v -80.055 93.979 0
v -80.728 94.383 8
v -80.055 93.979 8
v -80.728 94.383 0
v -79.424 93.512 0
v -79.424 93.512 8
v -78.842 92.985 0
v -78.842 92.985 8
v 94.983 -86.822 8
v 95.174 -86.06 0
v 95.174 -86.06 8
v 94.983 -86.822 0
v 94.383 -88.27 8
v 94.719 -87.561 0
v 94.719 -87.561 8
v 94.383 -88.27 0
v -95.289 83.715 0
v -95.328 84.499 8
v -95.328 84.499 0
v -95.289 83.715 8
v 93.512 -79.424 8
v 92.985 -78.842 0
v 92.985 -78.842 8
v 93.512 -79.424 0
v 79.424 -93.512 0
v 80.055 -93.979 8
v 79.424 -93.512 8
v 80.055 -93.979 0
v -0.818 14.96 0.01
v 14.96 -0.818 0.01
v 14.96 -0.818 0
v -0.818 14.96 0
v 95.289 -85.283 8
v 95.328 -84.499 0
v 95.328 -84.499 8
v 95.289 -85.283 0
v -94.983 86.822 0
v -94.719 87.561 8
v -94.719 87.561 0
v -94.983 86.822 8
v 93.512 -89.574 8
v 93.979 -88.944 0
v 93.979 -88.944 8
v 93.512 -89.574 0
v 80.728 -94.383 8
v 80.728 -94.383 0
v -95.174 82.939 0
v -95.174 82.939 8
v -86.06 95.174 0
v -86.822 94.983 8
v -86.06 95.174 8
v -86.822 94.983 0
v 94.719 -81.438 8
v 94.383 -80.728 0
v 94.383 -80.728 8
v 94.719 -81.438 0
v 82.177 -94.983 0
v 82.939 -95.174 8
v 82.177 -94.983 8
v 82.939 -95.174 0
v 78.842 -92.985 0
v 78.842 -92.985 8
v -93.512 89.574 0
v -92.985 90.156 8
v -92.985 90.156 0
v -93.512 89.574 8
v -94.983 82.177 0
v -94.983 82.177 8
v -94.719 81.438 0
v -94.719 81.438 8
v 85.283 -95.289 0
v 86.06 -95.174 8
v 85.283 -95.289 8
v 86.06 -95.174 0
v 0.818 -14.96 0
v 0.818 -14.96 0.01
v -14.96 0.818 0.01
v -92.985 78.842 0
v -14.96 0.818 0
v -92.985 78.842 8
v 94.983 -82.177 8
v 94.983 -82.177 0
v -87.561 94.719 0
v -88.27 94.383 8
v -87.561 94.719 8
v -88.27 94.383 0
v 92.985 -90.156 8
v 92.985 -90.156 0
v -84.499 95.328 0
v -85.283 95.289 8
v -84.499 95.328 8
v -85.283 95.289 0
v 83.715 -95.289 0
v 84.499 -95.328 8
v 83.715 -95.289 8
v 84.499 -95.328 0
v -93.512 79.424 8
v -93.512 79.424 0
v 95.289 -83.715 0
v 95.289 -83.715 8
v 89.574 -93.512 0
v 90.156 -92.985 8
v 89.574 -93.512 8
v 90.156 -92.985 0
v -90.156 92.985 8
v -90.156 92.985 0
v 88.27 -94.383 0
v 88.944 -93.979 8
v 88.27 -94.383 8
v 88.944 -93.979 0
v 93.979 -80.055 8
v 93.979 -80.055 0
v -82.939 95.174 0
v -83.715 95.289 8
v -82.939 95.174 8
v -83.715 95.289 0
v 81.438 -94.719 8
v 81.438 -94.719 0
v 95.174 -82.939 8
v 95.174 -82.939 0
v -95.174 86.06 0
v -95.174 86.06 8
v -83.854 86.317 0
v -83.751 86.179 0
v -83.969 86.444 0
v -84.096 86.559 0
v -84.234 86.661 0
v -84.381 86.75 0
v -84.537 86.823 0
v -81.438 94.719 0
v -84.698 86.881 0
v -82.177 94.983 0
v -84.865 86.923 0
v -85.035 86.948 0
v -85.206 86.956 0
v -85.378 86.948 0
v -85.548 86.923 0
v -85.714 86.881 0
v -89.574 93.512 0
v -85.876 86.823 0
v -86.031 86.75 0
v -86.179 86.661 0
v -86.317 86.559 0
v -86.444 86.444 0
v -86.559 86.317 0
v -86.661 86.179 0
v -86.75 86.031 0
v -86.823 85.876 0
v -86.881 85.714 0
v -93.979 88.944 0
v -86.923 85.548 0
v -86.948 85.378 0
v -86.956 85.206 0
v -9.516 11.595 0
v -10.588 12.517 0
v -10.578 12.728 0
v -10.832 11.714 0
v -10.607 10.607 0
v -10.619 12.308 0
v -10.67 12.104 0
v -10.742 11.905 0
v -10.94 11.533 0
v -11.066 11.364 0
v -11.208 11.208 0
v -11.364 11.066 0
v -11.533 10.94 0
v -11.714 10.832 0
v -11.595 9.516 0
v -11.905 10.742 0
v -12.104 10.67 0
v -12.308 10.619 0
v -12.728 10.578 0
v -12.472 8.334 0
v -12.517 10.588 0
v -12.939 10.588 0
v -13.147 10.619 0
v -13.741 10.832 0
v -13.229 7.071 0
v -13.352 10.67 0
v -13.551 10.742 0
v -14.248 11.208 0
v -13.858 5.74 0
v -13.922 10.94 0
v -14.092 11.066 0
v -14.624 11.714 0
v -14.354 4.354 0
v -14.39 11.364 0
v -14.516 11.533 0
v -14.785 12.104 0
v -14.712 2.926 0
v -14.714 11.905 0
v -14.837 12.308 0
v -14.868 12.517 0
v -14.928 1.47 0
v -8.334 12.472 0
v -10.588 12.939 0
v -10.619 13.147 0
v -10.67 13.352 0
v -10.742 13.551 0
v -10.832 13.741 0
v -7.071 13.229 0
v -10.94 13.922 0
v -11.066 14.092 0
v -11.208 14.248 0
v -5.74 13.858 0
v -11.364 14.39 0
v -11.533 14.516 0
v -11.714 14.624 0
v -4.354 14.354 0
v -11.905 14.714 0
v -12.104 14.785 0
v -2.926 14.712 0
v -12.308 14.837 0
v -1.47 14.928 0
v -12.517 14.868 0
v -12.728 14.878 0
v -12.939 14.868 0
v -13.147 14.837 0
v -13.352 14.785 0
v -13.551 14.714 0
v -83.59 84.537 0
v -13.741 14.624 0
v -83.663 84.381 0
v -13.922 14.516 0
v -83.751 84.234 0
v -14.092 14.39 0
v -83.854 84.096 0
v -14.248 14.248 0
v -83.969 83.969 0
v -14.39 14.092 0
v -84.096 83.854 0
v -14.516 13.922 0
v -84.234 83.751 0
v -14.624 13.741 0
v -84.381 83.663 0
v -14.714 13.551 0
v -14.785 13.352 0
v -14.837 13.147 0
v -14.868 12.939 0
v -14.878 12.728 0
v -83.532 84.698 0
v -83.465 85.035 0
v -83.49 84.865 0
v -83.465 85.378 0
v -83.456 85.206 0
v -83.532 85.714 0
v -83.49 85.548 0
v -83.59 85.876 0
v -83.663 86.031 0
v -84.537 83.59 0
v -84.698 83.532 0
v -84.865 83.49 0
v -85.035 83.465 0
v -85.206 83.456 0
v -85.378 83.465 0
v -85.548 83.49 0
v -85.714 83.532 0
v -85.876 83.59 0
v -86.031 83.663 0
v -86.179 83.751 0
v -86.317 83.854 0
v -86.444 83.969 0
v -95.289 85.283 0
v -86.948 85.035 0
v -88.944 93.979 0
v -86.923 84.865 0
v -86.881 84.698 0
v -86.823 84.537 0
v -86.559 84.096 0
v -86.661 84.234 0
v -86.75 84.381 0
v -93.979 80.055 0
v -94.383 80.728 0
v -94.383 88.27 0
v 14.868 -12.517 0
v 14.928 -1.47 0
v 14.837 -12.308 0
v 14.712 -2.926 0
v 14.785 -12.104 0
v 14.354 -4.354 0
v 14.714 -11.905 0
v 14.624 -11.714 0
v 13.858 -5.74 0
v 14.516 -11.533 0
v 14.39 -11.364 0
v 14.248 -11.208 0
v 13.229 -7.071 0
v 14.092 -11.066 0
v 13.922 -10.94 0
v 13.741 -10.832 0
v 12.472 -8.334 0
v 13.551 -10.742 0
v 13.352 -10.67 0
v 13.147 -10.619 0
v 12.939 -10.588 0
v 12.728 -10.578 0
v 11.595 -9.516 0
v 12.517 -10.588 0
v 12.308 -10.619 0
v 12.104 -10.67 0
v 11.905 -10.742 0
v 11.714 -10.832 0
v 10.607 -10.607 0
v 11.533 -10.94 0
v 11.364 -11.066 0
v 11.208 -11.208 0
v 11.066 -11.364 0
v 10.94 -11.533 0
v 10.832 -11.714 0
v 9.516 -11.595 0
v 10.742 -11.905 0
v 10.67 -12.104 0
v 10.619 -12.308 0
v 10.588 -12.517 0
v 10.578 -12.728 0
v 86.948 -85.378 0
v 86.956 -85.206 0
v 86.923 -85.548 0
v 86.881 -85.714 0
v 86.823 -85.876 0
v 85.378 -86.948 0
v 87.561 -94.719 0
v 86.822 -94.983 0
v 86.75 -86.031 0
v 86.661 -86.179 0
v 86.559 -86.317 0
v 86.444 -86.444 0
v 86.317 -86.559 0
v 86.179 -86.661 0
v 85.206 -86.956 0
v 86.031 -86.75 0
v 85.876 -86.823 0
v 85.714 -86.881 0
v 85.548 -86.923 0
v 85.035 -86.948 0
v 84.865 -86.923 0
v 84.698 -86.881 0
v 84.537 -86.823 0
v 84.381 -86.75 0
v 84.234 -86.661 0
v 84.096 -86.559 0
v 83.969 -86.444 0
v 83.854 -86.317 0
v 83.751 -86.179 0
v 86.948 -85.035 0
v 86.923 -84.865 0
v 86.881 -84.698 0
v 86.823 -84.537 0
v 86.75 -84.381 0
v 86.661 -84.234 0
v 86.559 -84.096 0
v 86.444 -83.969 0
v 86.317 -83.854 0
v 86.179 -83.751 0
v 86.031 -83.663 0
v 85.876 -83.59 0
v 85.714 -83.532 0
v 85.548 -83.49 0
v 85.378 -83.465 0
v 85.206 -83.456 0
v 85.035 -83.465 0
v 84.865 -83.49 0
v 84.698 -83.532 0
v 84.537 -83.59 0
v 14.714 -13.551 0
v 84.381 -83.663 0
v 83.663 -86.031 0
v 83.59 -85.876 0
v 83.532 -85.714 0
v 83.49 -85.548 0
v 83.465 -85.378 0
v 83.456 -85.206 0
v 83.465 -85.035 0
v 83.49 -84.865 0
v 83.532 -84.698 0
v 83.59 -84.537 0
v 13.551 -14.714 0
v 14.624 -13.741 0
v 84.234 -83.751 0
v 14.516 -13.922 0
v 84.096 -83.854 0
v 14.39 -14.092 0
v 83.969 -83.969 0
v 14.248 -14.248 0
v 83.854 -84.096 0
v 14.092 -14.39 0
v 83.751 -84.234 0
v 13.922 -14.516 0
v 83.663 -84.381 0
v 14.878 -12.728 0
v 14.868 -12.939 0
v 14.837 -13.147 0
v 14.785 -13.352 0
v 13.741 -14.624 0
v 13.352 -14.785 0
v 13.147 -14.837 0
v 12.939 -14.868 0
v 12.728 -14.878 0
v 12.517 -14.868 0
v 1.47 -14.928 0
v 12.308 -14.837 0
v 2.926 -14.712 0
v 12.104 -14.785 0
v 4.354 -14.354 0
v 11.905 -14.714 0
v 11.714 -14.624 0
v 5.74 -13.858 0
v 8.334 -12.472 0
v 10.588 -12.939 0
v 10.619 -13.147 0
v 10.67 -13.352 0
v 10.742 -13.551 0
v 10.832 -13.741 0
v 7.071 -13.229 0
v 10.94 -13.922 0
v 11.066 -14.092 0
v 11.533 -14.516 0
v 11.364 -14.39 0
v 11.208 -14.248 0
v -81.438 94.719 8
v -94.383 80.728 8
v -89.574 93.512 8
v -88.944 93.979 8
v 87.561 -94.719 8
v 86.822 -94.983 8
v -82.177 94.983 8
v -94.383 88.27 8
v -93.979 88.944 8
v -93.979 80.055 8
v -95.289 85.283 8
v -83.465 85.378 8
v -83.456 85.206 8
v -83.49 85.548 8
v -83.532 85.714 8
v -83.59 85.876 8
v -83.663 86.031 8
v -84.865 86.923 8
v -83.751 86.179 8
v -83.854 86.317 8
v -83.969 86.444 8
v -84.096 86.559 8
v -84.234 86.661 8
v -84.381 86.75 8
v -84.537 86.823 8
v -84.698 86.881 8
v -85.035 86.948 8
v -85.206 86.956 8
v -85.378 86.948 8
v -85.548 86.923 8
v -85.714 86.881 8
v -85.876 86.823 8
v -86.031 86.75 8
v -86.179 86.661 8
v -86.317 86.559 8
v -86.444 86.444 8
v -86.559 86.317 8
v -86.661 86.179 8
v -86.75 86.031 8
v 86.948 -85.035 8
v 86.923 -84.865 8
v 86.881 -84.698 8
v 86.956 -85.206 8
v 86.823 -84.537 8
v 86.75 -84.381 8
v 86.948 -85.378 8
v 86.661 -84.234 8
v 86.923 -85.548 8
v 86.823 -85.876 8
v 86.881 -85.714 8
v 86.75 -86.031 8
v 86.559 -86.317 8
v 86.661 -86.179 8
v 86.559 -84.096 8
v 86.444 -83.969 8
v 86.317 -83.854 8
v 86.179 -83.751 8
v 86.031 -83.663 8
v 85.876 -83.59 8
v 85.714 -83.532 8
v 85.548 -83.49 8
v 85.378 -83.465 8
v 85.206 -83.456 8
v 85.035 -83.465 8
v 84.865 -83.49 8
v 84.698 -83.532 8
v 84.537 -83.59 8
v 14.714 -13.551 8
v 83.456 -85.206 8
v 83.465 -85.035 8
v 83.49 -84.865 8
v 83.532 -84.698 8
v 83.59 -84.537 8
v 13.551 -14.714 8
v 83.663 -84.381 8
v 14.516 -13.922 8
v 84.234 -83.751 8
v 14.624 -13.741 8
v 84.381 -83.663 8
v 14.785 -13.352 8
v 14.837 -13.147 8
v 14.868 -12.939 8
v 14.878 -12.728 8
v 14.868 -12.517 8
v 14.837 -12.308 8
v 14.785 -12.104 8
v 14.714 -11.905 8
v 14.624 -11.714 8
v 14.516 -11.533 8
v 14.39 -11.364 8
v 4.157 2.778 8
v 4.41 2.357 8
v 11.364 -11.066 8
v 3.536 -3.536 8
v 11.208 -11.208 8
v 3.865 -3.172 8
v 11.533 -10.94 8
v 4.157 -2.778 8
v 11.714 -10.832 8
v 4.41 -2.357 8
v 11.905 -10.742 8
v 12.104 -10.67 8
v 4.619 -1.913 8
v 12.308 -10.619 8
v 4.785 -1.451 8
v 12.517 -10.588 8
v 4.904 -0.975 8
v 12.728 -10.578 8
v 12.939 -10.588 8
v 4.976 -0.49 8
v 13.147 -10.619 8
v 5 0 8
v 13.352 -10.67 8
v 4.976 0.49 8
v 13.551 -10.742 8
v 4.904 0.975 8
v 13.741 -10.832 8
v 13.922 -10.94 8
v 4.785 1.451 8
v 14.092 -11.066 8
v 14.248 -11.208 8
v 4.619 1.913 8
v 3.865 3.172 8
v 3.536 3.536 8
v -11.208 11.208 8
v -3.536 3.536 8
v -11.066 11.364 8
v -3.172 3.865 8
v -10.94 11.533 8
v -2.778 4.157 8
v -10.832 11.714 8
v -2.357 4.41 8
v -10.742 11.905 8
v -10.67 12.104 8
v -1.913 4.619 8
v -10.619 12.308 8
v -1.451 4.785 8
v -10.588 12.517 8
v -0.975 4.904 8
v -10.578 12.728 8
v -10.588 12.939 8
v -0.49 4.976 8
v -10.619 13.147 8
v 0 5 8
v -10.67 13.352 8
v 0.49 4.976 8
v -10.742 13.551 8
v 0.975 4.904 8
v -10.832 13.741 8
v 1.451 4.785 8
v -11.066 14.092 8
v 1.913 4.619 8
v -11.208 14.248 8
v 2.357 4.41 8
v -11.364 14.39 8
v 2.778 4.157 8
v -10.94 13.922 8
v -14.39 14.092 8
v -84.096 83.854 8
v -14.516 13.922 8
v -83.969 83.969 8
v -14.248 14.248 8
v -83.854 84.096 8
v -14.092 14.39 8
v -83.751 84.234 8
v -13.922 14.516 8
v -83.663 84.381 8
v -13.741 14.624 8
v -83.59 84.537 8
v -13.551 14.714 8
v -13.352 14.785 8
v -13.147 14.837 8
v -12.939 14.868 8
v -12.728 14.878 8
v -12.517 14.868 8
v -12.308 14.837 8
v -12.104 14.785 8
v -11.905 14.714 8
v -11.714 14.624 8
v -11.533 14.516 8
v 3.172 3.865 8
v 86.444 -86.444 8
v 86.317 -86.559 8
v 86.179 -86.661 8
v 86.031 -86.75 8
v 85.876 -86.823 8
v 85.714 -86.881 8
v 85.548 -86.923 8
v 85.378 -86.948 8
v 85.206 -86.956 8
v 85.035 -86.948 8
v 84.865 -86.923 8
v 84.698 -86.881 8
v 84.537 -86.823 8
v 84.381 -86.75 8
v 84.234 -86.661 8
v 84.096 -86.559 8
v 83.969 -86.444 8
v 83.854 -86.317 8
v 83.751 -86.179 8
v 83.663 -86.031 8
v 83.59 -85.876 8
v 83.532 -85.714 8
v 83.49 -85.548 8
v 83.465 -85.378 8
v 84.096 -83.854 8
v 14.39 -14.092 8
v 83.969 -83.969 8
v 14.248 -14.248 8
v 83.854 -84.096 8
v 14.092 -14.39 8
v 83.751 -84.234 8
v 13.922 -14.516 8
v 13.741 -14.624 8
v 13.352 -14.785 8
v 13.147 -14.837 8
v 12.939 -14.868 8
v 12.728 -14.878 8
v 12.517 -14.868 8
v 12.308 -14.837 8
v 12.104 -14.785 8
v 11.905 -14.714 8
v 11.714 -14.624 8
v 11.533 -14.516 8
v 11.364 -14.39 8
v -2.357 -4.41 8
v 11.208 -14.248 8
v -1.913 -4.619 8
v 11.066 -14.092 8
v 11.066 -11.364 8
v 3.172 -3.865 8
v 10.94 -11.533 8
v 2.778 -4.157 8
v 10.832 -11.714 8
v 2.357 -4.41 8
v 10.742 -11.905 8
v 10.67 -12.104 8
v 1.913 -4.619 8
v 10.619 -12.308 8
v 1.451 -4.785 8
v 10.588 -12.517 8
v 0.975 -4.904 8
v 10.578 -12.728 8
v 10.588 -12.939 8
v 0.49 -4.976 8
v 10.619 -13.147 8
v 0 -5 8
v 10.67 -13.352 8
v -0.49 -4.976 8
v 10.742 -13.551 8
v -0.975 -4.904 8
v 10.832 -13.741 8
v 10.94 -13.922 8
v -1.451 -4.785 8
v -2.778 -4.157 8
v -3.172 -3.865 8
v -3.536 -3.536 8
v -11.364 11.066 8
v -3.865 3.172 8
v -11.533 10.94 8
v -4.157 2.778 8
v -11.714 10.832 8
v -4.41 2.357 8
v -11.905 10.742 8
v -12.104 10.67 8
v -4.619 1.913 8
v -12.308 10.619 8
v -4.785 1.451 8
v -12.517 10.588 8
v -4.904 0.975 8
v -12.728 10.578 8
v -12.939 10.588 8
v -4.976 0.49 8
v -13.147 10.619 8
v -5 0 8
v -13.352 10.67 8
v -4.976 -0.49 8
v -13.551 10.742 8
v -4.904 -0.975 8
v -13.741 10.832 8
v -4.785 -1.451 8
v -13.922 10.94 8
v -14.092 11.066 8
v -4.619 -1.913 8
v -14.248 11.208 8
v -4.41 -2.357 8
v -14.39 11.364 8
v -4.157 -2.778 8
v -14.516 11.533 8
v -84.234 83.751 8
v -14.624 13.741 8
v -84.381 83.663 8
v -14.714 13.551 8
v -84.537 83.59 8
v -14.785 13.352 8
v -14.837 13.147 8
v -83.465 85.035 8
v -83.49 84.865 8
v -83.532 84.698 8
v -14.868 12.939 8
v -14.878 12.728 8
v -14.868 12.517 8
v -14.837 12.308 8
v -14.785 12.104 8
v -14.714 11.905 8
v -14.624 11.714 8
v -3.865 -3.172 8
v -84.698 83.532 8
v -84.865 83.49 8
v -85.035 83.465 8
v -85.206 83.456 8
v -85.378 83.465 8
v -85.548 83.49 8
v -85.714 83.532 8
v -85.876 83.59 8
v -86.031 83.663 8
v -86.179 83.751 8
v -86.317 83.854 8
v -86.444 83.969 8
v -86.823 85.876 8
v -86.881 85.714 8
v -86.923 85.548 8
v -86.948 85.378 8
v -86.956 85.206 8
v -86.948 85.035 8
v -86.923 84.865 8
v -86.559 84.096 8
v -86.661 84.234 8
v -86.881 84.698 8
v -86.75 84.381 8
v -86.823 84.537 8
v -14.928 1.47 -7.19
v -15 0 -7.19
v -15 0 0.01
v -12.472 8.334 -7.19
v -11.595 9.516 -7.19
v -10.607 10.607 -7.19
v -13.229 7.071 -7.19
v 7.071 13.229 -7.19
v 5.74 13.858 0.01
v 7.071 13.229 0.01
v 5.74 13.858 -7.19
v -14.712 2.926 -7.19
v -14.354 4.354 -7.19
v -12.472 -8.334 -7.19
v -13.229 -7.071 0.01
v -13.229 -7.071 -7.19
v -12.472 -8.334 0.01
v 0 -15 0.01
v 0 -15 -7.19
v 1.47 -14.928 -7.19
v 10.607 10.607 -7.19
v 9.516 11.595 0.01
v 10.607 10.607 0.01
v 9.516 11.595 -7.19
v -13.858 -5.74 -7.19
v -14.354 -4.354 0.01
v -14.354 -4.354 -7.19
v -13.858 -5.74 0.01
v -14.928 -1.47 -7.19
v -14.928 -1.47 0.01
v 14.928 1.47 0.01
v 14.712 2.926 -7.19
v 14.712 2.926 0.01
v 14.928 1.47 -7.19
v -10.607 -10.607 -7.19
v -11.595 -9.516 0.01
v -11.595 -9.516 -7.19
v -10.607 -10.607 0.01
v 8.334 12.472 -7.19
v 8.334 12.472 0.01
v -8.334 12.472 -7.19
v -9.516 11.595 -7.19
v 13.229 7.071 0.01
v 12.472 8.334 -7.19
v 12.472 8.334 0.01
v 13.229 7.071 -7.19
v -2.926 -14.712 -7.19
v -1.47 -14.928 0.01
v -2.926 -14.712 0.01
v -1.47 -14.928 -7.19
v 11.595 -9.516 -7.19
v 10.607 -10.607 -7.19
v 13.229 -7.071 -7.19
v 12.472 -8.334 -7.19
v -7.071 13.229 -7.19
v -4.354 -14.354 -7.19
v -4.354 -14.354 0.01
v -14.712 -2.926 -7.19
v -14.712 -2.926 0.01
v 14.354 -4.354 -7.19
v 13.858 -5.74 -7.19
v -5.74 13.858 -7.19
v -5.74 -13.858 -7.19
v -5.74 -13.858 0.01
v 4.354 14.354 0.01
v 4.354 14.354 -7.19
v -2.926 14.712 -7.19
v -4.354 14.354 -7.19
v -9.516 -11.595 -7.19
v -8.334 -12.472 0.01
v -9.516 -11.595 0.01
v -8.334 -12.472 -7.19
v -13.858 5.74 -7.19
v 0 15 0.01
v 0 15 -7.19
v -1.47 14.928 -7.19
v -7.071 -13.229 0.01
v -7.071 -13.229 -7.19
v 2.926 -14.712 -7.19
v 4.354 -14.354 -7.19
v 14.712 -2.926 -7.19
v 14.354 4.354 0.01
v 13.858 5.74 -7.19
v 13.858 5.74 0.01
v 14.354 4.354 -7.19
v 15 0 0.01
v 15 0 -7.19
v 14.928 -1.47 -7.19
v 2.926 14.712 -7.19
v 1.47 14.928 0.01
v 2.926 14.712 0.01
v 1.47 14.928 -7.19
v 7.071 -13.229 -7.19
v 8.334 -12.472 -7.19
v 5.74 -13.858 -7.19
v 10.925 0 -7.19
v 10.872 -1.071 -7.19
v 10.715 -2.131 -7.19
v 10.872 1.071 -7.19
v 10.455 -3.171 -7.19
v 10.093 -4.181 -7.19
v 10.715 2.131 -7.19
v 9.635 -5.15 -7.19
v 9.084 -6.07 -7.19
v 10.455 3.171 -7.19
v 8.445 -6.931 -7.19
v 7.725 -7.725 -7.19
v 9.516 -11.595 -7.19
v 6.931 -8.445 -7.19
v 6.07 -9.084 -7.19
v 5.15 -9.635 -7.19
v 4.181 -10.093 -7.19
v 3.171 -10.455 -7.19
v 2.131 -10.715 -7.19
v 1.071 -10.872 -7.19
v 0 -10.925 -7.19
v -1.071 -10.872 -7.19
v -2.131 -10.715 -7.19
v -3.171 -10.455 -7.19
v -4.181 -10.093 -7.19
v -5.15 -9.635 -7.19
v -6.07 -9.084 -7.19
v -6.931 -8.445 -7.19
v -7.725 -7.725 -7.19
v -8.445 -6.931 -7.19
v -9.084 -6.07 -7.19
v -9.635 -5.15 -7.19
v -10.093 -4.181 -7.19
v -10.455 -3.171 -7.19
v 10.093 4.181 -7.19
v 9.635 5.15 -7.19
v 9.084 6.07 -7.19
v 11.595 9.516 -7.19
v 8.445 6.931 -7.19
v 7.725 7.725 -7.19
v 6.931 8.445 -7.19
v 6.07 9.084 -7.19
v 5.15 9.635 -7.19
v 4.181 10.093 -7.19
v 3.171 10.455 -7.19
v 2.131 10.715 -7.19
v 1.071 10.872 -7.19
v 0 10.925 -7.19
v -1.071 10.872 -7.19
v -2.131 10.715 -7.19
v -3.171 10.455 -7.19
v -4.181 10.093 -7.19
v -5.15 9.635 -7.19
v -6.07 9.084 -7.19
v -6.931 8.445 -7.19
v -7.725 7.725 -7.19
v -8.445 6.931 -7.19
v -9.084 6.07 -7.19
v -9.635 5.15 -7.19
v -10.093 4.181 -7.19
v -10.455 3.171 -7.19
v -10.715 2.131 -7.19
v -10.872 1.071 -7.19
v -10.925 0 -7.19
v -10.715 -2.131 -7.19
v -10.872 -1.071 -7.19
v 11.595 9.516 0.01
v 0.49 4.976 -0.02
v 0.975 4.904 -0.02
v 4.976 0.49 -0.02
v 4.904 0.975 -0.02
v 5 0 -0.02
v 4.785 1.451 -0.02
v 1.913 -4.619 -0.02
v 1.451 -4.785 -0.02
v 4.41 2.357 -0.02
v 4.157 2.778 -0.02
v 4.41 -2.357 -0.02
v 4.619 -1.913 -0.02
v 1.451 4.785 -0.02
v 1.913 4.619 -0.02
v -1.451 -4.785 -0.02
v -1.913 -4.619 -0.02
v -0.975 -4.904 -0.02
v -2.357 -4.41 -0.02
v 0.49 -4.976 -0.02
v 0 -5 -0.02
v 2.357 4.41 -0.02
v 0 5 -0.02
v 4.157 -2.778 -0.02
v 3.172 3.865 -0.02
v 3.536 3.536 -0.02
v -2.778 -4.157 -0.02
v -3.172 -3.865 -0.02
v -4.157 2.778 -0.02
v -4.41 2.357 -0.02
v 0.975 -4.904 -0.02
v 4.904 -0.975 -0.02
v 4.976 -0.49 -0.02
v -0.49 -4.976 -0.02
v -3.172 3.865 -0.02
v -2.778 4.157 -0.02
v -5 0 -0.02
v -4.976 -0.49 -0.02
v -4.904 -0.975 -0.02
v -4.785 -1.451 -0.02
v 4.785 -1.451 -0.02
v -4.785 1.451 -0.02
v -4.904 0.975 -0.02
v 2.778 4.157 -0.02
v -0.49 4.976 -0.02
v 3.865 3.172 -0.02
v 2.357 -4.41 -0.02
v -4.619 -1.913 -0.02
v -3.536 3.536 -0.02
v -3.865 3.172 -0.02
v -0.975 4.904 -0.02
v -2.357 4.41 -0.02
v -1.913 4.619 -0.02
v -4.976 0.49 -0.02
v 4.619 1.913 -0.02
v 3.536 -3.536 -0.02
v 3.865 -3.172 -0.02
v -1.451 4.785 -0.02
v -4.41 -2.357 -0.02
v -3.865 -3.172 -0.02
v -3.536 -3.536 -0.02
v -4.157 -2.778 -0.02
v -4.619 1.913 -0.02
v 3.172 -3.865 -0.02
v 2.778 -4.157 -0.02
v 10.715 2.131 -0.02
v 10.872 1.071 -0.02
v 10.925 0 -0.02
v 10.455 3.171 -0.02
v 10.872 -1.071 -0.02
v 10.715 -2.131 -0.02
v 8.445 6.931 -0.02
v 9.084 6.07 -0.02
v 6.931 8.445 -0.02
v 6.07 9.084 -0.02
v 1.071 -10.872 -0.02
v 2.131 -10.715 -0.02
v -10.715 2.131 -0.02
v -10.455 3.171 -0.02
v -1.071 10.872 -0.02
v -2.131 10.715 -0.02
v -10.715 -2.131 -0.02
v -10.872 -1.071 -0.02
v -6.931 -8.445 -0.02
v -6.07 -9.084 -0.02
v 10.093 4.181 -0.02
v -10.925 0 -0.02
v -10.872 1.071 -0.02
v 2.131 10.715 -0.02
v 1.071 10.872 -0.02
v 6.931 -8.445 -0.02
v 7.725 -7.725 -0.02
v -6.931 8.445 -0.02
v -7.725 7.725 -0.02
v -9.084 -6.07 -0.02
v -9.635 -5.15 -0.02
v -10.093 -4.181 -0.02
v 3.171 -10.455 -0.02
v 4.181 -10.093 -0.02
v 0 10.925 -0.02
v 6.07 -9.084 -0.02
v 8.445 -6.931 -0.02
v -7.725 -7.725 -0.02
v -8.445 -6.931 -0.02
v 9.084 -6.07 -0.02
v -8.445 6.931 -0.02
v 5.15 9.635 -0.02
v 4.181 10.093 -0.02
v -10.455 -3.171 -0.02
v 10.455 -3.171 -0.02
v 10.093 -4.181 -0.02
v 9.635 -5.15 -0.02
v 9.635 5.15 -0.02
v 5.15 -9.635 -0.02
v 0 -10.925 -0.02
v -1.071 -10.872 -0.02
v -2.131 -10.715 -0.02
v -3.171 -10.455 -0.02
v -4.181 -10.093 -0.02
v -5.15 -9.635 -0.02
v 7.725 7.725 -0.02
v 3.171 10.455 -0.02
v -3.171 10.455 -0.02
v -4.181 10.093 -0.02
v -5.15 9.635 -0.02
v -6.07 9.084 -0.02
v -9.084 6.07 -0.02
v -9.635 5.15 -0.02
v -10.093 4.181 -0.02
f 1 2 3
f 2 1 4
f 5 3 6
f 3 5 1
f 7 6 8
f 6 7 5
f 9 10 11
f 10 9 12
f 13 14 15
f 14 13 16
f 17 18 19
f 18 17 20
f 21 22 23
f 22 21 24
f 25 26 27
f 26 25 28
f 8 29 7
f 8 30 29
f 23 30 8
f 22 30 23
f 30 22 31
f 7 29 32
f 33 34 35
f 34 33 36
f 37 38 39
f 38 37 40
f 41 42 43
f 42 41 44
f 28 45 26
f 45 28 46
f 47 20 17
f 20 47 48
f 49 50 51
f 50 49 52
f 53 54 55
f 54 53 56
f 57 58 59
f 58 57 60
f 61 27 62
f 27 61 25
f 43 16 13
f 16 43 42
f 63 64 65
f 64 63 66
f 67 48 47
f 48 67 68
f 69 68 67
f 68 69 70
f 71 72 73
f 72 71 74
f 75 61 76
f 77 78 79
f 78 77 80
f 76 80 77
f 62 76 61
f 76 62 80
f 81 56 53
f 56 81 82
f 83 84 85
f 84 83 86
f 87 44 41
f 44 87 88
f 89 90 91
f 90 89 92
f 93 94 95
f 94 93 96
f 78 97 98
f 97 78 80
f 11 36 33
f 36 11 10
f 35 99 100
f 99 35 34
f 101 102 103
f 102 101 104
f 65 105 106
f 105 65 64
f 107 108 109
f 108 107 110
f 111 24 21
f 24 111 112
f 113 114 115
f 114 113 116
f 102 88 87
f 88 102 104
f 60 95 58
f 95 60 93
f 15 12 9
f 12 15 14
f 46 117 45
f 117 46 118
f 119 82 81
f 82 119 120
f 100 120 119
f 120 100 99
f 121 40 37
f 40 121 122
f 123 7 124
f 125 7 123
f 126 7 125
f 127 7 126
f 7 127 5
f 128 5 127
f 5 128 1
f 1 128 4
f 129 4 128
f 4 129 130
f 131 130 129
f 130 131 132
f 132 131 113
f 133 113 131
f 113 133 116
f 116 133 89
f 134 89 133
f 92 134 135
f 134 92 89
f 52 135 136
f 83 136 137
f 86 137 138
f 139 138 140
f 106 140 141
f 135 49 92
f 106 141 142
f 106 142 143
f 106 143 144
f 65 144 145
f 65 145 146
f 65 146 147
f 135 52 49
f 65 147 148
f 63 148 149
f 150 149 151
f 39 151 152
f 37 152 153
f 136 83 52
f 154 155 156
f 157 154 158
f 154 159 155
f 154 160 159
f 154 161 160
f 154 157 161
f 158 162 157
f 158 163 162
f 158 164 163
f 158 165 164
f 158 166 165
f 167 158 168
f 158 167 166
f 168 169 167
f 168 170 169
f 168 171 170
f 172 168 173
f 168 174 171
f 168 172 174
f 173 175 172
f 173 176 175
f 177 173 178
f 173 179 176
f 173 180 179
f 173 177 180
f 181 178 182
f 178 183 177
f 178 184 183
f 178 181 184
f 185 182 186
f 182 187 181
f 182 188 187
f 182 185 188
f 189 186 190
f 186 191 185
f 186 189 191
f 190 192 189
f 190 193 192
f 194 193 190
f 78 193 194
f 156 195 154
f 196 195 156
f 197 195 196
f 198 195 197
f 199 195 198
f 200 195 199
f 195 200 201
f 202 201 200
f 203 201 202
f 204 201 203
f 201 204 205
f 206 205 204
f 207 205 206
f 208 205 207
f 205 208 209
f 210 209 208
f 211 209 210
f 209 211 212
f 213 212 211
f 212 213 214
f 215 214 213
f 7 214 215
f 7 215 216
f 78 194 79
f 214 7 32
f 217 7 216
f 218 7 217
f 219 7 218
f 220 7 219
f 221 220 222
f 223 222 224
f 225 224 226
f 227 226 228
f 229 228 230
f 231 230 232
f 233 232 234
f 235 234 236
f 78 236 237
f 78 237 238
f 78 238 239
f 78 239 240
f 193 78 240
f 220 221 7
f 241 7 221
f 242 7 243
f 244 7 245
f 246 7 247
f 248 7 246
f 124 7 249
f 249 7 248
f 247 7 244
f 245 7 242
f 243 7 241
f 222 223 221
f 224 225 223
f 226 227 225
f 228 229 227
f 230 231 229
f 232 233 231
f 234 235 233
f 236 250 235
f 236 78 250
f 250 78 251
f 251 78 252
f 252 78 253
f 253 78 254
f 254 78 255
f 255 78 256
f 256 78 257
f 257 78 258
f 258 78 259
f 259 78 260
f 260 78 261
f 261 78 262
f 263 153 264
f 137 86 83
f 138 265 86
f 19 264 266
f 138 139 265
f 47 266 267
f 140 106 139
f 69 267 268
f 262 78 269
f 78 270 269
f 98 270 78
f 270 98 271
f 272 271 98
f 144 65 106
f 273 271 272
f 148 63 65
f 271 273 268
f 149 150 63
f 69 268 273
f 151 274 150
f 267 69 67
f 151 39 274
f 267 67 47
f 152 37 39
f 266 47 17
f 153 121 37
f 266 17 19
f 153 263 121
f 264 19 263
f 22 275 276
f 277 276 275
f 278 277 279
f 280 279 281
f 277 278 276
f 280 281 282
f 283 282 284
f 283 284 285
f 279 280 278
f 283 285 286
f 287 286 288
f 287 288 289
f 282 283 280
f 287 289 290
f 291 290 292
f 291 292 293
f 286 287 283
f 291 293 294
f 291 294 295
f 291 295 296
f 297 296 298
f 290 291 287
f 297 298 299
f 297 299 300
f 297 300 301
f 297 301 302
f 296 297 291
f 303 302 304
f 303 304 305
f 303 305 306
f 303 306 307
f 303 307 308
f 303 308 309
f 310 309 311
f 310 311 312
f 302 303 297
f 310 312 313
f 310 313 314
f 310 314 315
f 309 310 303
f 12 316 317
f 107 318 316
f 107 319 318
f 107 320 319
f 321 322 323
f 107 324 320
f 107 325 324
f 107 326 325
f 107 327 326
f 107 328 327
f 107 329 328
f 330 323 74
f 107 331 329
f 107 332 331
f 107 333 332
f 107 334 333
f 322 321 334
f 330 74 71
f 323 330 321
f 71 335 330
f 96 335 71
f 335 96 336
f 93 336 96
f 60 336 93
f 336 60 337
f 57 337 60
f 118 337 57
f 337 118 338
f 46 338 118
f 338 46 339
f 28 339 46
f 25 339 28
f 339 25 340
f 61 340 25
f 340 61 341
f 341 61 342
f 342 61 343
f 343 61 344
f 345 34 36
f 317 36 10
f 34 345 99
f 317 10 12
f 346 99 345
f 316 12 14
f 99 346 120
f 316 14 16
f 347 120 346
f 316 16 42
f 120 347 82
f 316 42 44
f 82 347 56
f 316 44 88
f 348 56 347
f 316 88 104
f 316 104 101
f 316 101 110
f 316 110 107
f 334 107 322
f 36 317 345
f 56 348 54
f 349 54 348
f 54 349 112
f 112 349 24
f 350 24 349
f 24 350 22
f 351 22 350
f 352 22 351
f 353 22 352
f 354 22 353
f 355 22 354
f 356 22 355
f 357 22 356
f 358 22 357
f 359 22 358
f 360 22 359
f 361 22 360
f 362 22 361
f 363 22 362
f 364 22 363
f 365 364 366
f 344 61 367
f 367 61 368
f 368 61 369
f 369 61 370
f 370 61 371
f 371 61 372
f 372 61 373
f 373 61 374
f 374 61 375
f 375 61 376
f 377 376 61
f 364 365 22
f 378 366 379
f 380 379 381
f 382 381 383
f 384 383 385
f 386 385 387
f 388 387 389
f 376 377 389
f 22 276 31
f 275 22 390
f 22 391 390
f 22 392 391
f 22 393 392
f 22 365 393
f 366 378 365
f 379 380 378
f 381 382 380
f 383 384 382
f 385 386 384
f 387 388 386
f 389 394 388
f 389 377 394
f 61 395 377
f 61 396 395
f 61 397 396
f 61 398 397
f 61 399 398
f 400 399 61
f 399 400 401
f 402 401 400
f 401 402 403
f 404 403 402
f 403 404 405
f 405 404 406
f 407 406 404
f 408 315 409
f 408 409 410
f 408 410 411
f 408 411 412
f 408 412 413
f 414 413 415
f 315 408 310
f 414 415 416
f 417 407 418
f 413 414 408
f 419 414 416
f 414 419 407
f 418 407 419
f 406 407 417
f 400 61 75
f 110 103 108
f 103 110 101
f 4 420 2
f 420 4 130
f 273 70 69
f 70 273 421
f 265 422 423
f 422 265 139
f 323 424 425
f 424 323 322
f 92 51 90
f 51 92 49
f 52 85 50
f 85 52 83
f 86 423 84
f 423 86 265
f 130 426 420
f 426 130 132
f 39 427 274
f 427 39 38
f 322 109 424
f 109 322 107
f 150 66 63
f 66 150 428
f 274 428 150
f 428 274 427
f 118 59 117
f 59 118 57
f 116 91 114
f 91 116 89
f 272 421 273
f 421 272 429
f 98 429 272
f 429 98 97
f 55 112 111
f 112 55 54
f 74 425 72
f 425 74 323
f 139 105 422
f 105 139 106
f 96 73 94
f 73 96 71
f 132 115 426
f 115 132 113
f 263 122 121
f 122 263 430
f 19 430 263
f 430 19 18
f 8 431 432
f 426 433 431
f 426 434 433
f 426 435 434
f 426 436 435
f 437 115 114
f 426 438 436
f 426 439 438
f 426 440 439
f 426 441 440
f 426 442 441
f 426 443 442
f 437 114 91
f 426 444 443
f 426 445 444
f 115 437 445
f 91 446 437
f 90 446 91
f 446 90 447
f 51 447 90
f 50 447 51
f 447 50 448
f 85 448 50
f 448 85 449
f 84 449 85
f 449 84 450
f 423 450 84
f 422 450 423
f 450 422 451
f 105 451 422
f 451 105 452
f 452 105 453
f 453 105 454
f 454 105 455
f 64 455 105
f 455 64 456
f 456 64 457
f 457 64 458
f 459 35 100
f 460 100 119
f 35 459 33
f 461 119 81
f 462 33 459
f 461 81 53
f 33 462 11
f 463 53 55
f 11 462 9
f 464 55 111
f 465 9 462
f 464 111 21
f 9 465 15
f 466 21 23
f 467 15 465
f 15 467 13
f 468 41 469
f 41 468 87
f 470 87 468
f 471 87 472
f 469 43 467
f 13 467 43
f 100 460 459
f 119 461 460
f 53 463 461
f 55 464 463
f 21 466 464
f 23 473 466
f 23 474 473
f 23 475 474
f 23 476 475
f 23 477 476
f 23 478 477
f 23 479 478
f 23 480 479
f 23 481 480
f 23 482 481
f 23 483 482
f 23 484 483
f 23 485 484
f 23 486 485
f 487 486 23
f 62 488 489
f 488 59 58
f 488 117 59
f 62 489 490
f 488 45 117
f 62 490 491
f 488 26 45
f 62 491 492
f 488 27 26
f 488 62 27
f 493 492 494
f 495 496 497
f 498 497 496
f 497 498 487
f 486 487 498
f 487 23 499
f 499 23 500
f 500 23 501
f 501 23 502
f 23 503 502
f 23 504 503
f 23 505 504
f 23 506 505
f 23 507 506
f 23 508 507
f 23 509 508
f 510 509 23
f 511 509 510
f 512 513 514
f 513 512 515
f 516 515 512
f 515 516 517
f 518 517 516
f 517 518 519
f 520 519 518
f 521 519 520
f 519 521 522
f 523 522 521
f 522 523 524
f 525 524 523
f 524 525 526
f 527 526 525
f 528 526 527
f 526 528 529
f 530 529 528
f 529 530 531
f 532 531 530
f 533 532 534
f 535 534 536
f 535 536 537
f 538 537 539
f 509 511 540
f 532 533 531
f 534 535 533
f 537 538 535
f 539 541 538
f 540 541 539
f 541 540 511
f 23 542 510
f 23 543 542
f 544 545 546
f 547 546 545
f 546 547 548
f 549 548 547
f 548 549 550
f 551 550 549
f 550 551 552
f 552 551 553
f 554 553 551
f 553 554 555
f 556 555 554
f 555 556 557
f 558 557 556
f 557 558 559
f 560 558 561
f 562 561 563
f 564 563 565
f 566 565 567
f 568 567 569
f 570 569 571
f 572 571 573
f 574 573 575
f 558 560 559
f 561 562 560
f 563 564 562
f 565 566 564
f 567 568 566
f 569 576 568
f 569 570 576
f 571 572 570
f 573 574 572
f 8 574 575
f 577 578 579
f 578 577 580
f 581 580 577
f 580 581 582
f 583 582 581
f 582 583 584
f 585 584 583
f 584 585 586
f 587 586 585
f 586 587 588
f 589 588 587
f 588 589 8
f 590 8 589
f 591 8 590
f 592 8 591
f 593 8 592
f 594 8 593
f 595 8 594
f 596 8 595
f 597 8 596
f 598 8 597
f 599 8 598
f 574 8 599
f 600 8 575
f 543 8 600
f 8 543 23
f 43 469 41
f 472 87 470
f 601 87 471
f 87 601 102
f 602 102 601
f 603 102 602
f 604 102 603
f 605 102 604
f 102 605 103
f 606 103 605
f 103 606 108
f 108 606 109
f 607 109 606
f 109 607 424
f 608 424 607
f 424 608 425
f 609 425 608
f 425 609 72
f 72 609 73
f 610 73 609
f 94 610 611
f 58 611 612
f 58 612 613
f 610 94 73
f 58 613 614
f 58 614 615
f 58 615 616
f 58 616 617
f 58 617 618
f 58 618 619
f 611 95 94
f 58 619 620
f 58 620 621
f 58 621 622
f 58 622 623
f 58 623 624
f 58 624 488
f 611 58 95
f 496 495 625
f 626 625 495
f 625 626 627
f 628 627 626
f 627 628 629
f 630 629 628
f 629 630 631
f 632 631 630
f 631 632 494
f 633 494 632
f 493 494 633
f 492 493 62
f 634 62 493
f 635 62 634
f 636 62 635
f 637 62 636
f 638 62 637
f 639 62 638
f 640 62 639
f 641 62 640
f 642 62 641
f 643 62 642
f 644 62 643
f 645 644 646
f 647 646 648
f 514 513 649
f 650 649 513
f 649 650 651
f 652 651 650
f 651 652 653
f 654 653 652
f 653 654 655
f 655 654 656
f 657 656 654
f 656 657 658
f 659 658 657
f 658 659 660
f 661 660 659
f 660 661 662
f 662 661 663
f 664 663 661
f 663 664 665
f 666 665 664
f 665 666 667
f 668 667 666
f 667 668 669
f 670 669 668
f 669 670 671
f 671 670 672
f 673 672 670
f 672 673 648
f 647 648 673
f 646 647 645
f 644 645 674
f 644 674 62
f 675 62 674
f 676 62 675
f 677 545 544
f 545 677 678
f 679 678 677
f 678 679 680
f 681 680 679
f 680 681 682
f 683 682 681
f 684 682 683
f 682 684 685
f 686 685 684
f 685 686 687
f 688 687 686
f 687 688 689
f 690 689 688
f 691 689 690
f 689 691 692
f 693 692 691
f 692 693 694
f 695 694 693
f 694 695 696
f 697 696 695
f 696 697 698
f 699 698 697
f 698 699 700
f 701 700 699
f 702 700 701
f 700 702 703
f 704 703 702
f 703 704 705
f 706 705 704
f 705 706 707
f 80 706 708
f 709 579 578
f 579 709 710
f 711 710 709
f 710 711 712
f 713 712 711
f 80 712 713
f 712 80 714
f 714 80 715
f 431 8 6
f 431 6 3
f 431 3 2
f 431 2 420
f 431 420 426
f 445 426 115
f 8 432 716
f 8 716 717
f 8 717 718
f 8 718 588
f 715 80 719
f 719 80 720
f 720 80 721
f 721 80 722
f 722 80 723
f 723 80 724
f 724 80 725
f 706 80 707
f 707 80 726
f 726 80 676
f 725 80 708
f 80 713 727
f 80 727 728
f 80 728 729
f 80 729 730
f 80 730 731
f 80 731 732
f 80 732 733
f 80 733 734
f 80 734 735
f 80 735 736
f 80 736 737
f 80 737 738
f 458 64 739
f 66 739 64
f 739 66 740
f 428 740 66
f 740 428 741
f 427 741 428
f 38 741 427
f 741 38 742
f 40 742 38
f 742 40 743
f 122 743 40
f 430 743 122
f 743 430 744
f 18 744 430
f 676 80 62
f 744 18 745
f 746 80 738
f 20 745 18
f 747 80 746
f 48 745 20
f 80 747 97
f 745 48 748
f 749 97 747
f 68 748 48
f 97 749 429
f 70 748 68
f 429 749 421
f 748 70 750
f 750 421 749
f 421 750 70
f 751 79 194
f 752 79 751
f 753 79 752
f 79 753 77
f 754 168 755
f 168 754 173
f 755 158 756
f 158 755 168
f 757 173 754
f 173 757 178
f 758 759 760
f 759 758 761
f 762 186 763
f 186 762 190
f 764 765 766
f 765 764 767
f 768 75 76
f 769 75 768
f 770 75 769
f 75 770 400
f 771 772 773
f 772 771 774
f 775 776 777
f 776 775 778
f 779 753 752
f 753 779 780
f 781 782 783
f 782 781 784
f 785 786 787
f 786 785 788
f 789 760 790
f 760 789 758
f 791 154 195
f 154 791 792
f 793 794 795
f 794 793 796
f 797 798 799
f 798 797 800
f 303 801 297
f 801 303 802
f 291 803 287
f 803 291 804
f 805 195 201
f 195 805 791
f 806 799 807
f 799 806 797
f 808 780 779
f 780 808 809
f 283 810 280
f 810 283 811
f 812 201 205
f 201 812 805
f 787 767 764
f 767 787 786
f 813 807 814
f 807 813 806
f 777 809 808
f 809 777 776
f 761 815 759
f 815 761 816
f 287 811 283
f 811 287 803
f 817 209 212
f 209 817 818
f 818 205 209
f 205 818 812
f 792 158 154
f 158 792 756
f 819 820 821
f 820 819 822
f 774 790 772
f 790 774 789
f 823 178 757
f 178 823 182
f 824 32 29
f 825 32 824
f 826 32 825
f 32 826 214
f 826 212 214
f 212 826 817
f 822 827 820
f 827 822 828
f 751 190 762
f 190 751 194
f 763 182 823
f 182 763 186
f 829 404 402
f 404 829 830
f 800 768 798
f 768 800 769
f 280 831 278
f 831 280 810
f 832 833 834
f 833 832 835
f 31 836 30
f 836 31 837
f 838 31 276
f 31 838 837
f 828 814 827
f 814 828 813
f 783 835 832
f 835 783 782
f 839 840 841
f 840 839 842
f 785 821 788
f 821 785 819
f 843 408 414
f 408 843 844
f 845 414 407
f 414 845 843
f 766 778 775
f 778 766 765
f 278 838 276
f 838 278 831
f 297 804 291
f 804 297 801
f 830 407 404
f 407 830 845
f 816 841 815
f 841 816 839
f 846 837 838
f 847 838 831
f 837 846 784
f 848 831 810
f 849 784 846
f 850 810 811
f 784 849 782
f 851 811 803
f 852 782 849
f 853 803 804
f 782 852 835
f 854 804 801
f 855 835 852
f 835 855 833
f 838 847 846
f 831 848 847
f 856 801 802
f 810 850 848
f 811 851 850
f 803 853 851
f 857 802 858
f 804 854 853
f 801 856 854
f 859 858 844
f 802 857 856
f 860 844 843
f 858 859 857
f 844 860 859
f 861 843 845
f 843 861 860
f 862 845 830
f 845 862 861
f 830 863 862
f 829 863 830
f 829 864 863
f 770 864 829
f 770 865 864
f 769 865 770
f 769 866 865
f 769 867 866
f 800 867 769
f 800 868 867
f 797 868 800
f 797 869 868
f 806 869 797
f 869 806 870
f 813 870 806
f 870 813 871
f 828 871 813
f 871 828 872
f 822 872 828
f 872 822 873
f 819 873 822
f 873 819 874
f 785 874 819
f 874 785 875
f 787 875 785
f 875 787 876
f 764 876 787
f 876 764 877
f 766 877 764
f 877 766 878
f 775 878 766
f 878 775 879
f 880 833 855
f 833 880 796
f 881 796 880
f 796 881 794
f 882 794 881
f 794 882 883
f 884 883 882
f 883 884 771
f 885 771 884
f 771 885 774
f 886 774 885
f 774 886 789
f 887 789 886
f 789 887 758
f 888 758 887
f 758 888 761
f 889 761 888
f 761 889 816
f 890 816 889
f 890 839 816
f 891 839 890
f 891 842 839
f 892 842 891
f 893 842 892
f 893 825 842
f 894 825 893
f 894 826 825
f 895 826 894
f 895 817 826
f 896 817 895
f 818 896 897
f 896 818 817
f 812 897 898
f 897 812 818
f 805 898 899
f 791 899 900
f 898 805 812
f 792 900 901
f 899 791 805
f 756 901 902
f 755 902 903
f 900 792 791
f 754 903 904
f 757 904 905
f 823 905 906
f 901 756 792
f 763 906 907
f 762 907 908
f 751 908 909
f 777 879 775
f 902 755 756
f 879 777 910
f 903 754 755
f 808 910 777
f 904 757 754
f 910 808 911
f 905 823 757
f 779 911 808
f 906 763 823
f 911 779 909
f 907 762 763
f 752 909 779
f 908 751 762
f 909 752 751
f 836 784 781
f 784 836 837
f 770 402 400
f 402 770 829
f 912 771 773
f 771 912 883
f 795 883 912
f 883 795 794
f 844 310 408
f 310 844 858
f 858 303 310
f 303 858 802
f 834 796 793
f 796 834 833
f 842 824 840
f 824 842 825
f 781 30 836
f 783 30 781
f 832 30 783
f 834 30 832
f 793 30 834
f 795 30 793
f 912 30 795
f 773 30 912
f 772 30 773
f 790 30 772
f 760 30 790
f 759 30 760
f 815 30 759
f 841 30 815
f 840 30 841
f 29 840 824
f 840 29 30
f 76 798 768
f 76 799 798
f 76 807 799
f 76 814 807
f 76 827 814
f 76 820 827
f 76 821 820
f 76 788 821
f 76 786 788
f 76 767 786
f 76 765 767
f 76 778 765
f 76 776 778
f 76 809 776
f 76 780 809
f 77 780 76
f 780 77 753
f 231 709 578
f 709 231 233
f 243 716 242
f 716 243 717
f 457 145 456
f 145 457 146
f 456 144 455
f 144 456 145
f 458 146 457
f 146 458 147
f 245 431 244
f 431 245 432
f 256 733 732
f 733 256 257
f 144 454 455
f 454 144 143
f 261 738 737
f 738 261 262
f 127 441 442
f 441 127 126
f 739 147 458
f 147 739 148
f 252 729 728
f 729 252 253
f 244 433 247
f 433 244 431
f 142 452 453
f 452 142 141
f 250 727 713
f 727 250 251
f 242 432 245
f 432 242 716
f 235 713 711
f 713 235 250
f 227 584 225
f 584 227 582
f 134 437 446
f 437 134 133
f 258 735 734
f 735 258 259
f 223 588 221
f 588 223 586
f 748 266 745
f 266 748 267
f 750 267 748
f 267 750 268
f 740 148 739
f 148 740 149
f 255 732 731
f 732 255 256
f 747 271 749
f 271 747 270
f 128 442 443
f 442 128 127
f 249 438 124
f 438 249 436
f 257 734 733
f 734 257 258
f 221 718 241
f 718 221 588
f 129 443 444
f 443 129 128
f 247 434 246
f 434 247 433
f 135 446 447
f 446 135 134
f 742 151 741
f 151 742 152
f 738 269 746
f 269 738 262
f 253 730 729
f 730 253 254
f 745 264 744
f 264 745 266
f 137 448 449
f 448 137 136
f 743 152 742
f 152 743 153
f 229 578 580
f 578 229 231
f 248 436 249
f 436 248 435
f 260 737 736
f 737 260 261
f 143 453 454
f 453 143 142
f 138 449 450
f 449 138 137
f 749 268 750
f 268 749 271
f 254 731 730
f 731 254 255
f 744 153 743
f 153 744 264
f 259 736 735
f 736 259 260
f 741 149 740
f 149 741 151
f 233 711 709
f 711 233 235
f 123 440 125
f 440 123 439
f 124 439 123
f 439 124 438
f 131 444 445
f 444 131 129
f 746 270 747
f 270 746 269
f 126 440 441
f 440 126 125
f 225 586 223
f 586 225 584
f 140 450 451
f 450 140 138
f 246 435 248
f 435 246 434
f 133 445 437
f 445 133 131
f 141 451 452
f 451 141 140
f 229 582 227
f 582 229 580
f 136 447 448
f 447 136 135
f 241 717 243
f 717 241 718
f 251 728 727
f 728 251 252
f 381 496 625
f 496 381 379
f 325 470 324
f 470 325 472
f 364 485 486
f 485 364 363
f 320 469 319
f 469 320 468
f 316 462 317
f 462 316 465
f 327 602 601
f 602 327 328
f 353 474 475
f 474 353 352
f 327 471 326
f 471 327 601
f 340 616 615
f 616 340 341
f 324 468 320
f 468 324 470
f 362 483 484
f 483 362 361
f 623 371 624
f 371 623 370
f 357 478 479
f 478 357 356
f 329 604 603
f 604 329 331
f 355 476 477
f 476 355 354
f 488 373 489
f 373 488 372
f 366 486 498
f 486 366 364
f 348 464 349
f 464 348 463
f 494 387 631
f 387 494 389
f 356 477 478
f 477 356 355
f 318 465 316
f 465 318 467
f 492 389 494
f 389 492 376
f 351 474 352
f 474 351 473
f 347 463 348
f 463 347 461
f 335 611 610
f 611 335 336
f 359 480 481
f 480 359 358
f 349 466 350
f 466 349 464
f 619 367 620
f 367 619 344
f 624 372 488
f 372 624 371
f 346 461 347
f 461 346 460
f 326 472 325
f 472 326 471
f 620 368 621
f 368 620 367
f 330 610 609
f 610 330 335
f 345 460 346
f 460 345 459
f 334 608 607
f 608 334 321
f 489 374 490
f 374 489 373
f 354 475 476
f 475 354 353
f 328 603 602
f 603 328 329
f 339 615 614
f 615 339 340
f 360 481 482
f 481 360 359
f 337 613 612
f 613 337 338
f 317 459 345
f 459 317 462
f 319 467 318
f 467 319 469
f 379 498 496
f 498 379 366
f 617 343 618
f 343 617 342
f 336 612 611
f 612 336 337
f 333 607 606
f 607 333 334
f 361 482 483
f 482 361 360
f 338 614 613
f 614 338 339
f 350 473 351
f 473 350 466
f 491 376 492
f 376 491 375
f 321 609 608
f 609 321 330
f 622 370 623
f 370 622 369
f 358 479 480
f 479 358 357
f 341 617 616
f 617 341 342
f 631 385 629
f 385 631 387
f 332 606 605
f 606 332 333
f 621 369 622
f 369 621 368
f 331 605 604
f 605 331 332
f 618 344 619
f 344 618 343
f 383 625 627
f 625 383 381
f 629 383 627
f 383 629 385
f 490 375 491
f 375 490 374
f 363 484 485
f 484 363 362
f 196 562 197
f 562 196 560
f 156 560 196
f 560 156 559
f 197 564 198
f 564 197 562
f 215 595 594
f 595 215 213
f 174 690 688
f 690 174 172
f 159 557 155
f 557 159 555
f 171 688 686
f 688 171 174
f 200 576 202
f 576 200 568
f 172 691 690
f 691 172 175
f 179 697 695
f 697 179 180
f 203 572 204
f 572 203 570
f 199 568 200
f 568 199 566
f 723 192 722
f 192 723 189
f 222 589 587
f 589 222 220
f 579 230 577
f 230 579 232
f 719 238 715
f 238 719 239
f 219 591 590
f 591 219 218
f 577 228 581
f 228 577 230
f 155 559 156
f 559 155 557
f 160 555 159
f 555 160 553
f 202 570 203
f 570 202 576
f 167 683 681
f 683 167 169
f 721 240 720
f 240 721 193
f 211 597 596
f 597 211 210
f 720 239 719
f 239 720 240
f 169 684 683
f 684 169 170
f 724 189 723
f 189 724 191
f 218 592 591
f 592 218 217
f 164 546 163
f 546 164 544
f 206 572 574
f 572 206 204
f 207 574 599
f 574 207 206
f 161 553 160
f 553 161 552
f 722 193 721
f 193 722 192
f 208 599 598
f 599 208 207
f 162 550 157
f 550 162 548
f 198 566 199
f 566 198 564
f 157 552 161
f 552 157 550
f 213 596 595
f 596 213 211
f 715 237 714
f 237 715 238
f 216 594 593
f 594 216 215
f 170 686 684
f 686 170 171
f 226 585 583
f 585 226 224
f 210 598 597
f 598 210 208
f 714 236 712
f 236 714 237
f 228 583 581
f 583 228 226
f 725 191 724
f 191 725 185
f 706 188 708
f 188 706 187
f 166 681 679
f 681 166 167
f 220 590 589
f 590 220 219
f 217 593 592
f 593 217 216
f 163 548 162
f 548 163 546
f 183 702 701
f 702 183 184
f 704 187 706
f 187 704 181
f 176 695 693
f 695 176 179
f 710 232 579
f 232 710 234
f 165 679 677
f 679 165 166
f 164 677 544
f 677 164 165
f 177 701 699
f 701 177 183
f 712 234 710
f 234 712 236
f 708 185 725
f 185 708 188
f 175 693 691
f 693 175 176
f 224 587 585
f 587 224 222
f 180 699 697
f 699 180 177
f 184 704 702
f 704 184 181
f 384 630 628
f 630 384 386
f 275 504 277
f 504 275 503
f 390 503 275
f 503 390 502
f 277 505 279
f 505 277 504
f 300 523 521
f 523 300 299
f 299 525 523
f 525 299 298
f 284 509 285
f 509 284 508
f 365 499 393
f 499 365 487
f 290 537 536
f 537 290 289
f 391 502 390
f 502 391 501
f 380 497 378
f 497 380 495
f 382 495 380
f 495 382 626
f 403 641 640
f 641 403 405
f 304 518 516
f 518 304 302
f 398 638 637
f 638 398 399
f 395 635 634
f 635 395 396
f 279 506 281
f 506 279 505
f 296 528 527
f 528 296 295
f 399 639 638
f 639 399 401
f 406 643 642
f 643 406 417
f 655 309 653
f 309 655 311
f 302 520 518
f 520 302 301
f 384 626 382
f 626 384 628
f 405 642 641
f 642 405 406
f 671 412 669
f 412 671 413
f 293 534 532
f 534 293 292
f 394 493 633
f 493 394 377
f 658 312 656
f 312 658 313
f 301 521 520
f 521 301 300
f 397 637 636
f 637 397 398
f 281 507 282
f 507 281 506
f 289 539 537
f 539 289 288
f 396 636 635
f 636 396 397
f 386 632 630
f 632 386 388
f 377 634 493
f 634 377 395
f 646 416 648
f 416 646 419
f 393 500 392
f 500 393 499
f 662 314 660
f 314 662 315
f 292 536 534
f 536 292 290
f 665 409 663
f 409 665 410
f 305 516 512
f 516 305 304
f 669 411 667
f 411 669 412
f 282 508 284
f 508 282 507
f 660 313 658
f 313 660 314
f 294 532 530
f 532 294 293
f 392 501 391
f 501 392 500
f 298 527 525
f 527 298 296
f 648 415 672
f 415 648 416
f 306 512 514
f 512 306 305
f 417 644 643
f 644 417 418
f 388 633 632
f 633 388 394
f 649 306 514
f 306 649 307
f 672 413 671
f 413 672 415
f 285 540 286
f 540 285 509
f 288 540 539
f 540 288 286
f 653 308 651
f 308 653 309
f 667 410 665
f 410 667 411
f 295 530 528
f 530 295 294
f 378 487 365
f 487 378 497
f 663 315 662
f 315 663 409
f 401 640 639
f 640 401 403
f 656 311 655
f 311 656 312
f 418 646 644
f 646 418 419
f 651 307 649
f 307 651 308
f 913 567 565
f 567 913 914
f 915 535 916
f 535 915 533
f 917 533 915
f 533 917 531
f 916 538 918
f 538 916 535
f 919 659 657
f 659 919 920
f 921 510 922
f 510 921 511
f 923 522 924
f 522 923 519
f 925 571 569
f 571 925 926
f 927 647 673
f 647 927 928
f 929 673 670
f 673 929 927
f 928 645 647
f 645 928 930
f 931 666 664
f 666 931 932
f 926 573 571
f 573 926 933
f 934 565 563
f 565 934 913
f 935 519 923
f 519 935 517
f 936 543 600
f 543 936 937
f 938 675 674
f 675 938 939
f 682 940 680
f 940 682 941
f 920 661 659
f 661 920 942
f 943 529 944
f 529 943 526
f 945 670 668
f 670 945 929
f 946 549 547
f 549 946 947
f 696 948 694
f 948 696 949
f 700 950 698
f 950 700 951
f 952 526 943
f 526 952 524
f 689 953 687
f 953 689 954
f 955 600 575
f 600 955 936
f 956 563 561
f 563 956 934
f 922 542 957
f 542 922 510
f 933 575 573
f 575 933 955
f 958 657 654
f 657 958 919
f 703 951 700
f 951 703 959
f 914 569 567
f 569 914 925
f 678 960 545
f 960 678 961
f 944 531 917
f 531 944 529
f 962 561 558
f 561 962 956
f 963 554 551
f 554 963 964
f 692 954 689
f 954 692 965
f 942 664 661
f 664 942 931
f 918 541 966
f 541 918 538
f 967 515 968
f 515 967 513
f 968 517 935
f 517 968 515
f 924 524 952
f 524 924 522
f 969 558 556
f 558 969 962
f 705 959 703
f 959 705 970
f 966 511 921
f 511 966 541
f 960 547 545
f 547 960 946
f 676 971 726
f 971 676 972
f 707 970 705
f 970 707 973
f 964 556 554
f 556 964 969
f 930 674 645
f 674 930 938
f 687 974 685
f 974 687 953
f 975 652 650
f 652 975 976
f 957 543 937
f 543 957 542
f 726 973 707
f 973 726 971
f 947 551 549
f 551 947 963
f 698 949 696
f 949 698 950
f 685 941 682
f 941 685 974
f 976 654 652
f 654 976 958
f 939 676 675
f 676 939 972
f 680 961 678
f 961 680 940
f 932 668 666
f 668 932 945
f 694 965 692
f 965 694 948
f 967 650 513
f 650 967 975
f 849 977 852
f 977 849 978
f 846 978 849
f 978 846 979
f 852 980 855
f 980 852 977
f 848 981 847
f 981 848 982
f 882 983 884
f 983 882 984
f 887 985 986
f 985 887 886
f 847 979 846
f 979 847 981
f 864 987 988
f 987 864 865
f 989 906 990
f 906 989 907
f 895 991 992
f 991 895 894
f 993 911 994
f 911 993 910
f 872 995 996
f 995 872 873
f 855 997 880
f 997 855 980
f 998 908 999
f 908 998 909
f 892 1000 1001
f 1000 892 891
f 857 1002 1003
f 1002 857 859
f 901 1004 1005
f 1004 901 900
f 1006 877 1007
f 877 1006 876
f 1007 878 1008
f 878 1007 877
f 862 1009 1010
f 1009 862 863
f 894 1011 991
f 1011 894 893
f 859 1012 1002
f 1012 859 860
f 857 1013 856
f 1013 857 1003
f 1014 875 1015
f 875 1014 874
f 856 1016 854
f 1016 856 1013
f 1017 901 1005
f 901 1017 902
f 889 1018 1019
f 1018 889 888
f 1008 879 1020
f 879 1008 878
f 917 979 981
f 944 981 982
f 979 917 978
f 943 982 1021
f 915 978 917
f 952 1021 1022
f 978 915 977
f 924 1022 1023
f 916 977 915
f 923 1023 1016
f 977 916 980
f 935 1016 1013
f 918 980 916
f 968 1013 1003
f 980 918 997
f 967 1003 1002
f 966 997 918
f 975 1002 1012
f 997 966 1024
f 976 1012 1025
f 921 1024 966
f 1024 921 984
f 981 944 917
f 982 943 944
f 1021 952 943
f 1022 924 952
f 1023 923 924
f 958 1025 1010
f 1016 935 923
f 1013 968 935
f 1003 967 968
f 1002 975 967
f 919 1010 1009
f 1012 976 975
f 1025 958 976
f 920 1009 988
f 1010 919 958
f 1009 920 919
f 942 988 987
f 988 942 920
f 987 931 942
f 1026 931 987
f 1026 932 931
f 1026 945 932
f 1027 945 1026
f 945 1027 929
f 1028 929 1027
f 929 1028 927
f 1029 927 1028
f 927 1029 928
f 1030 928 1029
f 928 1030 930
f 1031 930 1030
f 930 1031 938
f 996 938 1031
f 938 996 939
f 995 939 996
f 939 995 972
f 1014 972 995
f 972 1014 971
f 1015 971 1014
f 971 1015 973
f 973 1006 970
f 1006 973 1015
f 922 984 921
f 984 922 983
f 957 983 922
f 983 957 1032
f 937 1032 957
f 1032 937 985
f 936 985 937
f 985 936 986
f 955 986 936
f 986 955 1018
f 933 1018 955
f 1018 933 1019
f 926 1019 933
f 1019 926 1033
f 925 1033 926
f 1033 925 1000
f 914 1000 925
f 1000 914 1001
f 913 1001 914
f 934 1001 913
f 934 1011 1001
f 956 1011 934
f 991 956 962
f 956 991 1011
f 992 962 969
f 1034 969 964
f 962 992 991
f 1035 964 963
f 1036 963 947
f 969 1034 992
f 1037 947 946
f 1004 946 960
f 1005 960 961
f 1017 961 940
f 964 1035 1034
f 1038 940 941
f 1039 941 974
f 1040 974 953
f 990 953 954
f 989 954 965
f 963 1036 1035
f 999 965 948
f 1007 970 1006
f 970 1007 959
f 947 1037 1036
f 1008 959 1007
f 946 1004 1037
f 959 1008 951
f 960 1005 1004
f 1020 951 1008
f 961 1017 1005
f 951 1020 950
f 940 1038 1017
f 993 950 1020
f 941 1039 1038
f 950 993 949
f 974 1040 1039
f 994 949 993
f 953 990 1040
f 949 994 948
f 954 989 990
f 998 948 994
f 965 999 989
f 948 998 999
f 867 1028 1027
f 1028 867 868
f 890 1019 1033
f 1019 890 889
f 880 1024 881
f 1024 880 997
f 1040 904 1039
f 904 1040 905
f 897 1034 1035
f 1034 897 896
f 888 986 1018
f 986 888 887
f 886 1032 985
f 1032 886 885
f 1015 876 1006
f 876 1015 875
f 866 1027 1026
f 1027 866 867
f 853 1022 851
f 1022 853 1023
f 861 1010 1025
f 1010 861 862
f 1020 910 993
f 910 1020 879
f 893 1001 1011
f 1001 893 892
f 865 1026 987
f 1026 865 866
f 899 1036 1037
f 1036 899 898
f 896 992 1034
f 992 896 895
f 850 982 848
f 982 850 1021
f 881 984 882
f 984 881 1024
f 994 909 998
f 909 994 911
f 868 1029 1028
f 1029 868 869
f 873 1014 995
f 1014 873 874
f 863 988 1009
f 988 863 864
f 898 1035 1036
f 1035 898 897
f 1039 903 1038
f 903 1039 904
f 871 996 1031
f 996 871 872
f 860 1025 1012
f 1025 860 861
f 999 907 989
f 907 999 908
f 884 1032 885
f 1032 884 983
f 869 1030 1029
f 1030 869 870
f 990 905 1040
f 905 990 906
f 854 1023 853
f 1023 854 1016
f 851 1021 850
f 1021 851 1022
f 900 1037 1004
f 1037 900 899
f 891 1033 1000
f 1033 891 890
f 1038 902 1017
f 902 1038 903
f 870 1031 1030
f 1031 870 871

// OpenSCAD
// Gen-DB — rear BEARING BRIDGE (bar endbell, 2026-10-10): a 608 boss on a 20 mm wide bar that spans the
// two frame rods at 135 deg and 135+180 deg (R = flange_bolt_r). The front bridge uses the rods at 45/225 deg, the rear
// bridge the rods at 135/315 deg, so the two bridges cross at 90 deg and the stator is held at 4 points.
// A bar instead of a full disc is what lets this big-ring kit fit ONE 410 mm plate. Print flat face DOWN (boss up, no supports).
// Brace holes (temporary M4 jack rods, R = brace_r) sit on the bar axis.
include <parameters.scad>;
$fn = 64;
bar_w = 20;
bar_len = 2 * (flange_bolt_r + 9);
module bar_2d() { offset(r=8) offset(delta=-8) square([bar_len, bar_w], center=true); }
difference() {
    rotate([0, 0, 135]) union() {
        linear_extrude(endbell_thick) bar_2d();
        translate([0, 0, -bearing_h + 0.01]) cylinder(d=30, h=bearing_h);
    }
    translate([0, 0, -bearing_h - 0.1]) cylinder(d=endbell_shaft_clear, h=50);
    translate([0, 0, -bearing_h - 0.02]) cylinder(d=bearing_d, h=bearing_h);
    for (s = [0, 180]) rotate([0, 0, 135 + s]) translate([flange_bolt_r, 0, -20]) cylinder(d=m3_clear, h=60);
    for (a = brace_angles) translate([brace_r*cos(a), brace_r*sin(a), -20]) cylinder(d=brace_d, h=50);
}
